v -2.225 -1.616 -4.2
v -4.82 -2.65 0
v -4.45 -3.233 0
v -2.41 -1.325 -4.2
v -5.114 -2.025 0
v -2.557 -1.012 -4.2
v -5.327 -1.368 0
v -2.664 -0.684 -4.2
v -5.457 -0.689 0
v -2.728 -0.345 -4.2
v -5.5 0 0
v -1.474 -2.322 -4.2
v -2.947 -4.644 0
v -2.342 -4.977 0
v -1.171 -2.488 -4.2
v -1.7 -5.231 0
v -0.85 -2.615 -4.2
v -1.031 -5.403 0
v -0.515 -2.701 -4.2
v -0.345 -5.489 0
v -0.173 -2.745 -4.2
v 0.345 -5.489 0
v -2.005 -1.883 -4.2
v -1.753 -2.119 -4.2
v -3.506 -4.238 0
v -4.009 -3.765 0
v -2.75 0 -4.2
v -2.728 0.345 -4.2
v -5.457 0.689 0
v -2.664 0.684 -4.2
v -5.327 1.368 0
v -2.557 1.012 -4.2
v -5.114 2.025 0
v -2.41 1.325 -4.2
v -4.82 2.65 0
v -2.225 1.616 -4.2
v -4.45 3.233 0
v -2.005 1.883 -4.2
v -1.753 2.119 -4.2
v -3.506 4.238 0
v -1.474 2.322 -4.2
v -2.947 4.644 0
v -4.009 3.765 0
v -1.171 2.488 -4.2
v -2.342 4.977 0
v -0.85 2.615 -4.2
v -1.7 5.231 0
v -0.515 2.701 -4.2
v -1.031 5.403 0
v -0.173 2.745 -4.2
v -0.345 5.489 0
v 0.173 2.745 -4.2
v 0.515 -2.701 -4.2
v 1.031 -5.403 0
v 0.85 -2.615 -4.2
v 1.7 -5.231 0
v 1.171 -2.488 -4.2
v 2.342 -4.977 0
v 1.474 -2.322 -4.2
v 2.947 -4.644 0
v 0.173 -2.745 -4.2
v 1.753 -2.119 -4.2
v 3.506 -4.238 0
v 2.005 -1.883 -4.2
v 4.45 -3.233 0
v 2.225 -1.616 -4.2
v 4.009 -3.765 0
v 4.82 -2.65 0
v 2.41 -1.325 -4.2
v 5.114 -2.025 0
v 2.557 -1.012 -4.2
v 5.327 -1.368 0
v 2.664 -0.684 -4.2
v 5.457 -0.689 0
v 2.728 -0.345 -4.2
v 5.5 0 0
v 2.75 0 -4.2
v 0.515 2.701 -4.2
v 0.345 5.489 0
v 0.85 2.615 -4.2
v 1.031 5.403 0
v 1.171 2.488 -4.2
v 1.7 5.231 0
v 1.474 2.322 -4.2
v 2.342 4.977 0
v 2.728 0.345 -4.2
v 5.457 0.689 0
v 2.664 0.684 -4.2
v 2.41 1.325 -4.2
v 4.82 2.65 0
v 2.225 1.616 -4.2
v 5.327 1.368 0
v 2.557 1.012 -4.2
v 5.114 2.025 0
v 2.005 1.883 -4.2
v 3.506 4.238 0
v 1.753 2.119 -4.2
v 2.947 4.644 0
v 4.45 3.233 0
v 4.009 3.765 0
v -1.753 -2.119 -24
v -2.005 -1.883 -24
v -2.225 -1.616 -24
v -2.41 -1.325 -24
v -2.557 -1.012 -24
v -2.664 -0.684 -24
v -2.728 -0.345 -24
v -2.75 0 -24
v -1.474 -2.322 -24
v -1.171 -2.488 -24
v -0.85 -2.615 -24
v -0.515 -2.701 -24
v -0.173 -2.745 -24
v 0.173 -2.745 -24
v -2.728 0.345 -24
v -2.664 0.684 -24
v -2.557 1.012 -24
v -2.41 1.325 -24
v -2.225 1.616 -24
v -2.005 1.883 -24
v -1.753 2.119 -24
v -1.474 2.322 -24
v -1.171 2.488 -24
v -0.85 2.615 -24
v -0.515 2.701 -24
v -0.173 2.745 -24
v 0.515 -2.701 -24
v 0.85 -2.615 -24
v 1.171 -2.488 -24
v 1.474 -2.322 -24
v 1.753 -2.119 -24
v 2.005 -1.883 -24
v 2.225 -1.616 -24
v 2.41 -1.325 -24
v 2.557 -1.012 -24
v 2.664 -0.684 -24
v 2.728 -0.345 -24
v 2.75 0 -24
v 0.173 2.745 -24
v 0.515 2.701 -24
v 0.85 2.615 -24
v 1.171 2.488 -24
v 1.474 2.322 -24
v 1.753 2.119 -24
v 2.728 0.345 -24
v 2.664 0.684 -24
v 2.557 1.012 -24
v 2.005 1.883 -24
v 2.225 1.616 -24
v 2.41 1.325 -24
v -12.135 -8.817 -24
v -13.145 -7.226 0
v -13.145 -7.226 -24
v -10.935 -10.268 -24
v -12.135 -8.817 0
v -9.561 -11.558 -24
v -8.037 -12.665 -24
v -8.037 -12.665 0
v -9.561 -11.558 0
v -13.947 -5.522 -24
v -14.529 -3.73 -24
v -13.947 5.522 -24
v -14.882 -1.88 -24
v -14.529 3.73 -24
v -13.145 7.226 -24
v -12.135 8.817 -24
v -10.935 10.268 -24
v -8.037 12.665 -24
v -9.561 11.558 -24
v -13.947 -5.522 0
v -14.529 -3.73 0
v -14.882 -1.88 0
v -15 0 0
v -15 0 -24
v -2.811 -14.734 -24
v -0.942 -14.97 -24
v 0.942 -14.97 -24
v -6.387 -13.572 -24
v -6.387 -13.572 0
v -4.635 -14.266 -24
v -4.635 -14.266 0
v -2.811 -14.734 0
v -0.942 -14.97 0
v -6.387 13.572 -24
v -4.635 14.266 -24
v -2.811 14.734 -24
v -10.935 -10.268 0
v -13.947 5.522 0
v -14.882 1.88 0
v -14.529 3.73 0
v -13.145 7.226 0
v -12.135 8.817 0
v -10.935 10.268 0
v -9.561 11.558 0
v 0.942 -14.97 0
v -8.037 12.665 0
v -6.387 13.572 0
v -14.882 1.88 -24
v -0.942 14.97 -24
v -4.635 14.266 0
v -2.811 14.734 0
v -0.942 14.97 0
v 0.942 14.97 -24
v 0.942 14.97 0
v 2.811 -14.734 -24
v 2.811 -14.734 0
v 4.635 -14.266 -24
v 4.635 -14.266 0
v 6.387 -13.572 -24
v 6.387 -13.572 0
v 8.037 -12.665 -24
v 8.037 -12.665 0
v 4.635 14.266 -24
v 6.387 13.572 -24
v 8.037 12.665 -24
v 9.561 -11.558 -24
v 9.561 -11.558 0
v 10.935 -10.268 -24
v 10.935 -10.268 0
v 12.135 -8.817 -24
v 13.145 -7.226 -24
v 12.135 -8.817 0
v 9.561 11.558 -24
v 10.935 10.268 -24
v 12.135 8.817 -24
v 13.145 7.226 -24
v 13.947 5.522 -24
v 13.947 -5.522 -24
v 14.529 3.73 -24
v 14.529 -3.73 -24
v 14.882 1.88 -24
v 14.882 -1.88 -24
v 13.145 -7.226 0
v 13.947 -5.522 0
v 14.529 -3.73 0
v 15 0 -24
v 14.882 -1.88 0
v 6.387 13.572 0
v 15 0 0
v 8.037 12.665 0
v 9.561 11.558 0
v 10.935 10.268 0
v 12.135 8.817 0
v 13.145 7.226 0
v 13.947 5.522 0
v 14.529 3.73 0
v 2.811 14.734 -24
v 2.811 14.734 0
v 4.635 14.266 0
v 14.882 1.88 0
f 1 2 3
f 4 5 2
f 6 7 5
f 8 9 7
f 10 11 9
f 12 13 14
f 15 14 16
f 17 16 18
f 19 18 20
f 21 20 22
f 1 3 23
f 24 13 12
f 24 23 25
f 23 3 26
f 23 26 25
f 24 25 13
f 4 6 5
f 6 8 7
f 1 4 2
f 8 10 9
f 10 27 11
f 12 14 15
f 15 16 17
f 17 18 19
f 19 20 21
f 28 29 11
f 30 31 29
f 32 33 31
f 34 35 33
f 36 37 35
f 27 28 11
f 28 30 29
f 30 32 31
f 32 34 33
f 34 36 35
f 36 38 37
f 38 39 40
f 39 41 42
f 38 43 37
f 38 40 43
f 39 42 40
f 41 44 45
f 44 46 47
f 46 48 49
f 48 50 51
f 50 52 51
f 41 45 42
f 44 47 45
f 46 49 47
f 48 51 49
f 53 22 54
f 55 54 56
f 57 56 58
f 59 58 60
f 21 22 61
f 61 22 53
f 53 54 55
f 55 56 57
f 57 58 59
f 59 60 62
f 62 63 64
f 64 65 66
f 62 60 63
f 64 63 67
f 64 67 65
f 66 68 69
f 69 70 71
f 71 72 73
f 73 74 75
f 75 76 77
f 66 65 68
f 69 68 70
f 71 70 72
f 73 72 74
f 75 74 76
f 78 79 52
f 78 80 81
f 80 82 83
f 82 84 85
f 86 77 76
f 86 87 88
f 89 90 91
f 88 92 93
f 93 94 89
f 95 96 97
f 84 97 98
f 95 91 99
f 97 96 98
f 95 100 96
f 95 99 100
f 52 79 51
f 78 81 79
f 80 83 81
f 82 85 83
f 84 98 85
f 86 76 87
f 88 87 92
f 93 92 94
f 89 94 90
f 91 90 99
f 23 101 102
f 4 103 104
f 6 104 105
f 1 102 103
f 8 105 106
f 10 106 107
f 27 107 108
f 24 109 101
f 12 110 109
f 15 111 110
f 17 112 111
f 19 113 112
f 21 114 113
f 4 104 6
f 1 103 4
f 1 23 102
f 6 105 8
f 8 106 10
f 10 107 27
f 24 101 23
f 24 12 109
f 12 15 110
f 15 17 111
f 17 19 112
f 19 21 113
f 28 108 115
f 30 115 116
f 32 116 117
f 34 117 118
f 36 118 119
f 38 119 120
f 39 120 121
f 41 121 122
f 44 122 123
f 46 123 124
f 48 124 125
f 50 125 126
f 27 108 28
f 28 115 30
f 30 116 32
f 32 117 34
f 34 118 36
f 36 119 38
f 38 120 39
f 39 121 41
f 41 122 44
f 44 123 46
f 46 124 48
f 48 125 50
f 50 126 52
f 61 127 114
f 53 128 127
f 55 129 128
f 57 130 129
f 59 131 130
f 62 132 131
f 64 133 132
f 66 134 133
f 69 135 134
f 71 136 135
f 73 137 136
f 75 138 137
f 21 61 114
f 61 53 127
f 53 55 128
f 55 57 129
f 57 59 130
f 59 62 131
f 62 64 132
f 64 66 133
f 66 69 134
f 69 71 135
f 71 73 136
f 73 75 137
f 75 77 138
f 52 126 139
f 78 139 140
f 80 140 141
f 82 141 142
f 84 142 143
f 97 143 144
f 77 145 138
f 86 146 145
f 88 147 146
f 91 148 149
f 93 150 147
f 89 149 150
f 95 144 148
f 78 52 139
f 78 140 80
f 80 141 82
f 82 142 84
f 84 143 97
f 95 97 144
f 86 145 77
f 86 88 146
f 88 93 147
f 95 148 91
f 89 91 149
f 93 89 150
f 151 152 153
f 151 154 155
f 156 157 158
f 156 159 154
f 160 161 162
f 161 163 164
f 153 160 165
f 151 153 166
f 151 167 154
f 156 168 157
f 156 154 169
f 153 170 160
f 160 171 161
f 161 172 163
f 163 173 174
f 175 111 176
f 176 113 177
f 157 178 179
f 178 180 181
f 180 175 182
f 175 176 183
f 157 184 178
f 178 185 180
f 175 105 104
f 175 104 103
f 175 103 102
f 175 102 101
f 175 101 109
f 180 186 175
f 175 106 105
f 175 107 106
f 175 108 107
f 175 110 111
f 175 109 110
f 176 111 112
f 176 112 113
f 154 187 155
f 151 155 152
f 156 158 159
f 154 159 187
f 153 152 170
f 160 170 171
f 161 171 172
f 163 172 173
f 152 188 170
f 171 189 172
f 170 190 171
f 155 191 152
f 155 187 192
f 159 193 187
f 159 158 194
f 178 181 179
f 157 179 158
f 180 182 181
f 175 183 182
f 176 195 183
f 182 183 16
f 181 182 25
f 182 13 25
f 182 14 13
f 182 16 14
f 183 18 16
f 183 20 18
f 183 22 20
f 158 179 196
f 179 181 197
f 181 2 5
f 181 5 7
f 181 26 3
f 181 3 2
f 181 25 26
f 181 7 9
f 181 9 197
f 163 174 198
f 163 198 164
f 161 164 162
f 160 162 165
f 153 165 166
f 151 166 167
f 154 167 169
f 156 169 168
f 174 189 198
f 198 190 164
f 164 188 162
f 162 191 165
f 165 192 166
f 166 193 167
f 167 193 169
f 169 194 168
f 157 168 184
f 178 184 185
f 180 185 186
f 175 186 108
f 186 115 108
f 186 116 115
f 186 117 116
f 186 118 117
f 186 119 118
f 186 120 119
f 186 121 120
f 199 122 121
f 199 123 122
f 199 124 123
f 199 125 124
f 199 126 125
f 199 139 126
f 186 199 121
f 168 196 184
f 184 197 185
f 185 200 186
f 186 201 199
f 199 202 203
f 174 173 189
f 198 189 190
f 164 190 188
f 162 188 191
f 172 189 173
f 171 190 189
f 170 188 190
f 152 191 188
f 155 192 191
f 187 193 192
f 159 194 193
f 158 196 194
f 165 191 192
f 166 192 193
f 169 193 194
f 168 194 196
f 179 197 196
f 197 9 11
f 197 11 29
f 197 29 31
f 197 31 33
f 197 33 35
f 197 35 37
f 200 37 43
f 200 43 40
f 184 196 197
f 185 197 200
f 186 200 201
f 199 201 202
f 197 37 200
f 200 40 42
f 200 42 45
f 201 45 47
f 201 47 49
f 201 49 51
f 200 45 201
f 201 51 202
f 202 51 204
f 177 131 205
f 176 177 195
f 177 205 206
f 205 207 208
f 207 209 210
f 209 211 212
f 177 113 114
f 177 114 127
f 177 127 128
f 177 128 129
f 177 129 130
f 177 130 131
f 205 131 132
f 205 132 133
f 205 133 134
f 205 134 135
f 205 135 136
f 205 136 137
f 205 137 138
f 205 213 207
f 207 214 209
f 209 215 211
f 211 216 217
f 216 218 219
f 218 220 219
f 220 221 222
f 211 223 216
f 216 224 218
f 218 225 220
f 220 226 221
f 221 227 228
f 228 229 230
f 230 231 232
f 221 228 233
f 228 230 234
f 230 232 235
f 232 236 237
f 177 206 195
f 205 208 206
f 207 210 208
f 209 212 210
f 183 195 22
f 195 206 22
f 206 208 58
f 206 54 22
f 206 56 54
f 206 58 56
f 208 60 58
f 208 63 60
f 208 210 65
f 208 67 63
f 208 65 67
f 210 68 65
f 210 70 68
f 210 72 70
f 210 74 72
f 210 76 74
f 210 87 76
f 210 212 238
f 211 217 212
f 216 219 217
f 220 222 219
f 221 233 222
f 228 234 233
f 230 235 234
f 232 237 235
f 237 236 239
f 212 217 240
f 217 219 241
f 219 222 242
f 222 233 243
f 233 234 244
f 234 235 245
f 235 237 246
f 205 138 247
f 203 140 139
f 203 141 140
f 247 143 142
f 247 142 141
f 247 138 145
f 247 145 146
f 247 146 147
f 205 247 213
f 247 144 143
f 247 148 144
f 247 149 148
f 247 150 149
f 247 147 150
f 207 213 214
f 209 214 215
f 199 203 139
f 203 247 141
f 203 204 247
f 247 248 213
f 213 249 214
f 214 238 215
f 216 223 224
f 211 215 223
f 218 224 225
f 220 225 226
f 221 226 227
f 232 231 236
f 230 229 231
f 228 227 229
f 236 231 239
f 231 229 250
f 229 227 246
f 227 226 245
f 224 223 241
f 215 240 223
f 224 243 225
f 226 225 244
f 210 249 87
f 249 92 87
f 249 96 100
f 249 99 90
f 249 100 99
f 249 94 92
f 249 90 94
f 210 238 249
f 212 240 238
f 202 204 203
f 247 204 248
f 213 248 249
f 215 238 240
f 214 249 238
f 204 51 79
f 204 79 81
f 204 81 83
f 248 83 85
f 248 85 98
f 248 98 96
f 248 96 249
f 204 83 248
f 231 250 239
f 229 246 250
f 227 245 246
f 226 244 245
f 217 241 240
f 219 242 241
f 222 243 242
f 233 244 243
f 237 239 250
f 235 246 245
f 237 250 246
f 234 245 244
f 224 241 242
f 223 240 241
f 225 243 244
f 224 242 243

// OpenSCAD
$fn = 50;


difference() {
	union() {
		translate(v = [0, 0, -24.0000000000]) {
			cylinder(h = 24, r = 15.0000000000);
		}
	}
	union() {
		translate(v = [0, 0, 0]) {
			rotate(a = [0, 0, 0]) {
				difference() {
					union() {
						translate(v = [0, 0, -27.0000000000]) {
							cylinder(h = 27, r = 2.2500000000);
						}
						translate(v = [0, 0, -4.2000000000]) {
							cylinder(h = 4.2000000000, r1 = 2.7500000000, r2 = 5.5000000000);
						}
						translate(v = [0, 0, -27.0000000000]) {
							cylinder(h = 27, r = 2.7500000000);
						}
						translate(v = [0, 0, -27.0000000000]) {
							cylinder(h = 27, r = 2.2500000000);
						}
					}
					union();
				}
			}
		}
	}
}
